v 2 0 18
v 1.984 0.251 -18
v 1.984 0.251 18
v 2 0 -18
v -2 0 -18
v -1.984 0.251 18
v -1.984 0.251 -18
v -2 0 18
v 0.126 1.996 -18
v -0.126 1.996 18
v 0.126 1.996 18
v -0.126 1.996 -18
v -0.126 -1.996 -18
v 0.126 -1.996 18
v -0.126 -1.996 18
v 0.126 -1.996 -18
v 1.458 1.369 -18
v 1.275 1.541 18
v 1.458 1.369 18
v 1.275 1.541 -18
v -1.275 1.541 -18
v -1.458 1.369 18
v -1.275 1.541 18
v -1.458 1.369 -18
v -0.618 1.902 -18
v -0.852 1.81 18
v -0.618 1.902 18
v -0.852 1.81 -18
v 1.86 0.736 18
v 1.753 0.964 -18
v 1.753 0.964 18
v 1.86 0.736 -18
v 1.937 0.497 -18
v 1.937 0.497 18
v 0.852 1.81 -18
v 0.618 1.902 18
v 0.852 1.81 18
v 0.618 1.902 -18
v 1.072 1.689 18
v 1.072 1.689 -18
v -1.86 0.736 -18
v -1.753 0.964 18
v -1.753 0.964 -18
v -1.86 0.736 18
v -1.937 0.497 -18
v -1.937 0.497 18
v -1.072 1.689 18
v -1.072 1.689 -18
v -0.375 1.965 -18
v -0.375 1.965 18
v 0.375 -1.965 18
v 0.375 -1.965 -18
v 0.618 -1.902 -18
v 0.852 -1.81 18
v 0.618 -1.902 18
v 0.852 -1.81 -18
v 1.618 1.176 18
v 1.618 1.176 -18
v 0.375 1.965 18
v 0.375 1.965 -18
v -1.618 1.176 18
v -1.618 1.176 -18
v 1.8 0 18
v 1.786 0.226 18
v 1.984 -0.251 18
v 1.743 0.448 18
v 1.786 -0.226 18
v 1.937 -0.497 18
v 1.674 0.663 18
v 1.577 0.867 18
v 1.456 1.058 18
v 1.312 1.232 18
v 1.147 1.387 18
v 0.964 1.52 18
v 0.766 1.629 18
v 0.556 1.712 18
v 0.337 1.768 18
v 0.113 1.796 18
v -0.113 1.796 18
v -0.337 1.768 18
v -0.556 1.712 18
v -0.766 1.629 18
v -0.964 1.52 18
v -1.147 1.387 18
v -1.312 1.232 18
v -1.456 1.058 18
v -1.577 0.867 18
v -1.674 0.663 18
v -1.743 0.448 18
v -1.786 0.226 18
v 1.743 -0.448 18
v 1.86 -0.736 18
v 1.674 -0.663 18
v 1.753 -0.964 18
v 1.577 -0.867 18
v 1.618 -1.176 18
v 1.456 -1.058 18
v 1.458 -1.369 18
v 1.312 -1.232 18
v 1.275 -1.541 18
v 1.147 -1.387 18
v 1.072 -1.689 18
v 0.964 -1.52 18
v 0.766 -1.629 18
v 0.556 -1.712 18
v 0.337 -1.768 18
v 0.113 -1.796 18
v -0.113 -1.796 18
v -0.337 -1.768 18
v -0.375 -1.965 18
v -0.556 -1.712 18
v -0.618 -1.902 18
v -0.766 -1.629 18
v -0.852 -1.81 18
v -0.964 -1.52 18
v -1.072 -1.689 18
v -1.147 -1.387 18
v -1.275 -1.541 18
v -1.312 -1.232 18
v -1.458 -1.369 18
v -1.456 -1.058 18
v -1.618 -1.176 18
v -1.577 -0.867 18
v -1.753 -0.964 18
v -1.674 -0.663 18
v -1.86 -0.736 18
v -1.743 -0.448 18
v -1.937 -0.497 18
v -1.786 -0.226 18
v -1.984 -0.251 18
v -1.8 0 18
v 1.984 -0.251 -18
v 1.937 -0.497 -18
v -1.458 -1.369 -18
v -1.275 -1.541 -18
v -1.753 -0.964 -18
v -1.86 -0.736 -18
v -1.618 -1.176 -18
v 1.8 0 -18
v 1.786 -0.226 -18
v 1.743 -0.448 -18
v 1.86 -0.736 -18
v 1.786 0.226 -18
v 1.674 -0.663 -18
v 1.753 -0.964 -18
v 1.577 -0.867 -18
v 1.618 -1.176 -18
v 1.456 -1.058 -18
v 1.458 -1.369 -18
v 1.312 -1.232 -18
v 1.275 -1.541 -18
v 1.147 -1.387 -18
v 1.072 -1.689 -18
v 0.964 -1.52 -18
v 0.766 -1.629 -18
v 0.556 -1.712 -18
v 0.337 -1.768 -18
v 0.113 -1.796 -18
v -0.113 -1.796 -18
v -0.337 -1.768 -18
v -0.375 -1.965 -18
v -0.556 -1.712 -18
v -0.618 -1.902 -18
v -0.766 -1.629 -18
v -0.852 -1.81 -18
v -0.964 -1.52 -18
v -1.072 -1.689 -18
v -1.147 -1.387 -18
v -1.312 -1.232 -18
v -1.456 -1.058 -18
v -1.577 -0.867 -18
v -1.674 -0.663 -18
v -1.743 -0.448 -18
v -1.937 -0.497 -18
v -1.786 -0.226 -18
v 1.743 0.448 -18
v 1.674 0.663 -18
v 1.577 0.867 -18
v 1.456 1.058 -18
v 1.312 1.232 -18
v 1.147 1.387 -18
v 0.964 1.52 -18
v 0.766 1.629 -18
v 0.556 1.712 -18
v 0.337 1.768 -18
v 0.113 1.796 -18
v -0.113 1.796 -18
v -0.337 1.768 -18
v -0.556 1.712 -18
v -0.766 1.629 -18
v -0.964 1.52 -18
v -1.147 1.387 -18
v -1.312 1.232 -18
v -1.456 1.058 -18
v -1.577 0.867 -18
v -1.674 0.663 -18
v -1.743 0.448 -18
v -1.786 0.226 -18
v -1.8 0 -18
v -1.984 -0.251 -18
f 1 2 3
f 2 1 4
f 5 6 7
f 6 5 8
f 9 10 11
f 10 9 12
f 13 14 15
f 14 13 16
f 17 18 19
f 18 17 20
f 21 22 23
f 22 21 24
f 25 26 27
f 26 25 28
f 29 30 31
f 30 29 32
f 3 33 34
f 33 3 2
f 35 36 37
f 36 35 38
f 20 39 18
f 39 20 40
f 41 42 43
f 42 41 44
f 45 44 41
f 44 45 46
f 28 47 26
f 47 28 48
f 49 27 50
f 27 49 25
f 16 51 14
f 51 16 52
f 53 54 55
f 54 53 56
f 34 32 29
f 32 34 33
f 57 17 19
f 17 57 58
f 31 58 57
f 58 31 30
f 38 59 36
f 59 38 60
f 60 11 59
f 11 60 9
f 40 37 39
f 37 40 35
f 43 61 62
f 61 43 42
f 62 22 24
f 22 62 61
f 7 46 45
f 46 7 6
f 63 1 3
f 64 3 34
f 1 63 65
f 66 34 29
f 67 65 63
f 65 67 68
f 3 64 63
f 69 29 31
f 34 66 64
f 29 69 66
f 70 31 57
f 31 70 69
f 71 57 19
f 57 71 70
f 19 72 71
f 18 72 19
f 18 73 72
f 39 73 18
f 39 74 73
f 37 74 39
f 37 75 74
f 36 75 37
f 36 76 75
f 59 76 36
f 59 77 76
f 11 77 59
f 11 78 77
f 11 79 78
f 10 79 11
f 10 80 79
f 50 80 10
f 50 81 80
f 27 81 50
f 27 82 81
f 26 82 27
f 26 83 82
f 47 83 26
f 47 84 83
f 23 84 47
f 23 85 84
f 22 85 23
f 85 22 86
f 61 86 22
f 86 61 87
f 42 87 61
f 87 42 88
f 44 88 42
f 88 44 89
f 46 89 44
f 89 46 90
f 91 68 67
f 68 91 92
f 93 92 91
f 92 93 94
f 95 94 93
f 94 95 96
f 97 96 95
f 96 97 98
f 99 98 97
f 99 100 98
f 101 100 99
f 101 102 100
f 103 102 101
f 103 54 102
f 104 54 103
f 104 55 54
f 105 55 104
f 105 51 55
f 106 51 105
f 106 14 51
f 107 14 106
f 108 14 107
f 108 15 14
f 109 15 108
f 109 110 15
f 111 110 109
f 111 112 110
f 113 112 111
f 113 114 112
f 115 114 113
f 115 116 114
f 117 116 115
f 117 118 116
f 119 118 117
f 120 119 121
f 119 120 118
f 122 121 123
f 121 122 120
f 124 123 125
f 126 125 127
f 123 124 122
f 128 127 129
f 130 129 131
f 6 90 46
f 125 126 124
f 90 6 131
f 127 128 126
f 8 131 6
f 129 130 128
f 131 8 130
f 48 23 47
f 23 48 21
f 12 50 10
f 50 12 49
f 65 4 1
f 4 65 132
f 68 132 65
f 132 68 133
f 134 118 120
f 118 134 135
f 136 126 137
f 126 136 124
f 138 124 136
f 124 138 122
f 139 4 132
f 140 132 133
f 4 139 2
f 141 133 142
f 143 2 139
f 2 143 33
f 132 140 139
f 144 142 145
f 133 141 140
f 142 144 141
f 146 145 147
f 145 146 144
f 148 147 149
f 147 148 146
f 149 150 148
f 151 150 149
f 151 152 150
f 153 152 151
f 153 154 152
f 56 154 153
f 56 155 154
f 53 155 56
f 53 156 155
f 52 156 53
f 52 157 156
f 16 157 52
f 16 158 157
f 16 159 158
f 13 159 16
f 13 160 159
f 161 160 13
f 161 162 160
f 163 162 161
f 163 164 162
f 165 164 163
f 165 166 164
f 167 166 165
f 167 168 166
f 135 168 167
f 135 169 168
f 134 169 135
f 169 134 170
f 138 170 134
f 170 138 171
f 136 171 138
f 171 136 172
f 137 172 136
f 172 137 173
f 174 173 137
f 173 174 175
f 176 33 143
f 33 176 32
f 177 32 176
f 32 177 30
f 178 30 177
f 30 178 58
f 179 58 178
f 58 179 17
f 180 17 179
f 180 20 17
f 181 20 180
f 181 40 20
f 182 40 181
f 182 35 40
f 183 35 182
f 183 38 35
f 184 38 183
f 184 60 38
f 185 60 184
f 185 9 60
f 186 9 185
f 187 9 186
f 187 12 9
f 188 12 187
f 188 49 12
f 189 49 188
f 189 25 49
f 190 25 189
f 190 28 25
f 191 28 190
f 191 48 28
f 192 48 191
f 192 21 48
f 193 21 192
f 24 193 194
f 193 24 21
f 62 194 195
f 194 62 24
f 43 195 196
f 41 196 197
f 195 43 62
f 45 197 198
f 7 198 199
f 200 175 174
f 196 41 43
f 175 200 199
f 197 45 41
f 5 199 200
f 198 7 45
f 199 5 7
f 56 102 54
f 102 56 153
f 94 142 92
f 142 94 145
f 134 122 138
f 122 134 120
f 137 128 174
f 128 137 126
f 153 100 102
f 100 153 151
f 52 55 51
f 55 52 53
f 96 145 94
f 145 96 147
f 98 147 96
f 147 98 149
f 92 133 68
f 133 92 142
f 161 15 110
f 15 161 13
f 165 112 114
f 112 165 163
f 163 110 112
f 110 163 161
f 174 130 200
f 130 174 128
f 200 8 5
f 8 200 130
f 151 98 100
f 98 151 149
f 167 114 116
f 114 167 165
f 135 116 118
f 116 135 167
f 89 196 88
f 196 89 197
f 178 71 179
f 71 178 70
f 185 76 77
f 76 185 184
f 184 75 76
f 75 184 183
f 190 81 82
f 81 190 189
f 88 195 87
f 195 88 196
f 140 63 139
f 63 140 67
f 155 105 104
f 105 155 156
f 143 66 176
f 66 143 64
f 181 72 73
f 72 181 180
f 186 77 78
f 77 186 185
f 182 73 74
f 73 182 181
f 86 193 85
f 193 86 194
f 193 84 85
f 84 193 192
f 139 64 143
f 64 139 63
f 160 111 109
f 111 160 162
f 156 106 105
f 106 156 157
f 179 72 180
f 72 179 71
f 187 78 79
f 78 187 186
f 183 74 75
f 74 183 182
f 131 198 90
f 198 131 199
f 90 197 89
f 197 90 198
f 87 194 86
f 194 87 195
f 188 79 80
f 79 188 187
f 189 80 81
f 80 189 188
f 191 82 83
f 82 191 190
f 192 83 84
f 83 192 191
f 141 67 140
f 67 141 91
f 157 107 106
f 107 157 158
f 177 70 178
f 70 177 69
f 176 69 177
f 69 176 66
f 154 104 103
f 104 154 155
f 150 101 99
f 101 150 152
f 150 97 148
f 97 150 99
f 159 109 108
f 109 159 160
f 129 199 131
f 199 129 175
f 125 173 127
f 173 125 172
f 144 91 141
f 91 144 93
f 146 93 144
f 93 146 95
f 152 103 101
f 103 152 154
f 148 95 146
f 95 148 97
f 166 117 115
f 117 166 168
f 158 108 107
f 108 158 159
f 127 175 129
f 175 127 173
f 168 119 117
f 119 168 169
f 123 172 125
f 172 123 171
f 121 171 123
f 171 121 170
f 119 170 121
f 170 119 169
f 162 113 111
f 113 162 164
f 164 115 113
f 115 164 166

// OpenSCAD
$fn = 50;


difference() {
	union() {
		translate(v = [0, 0, -18.0000000000]) {
			cylinder(h = 36, r = 2.0000000000);
		}
	}
	union() {
		translate(v = [0, 0, -100.0000000000]) {
			cylinder(h = 200, r = 1.8000000000);
		}
	}
}
